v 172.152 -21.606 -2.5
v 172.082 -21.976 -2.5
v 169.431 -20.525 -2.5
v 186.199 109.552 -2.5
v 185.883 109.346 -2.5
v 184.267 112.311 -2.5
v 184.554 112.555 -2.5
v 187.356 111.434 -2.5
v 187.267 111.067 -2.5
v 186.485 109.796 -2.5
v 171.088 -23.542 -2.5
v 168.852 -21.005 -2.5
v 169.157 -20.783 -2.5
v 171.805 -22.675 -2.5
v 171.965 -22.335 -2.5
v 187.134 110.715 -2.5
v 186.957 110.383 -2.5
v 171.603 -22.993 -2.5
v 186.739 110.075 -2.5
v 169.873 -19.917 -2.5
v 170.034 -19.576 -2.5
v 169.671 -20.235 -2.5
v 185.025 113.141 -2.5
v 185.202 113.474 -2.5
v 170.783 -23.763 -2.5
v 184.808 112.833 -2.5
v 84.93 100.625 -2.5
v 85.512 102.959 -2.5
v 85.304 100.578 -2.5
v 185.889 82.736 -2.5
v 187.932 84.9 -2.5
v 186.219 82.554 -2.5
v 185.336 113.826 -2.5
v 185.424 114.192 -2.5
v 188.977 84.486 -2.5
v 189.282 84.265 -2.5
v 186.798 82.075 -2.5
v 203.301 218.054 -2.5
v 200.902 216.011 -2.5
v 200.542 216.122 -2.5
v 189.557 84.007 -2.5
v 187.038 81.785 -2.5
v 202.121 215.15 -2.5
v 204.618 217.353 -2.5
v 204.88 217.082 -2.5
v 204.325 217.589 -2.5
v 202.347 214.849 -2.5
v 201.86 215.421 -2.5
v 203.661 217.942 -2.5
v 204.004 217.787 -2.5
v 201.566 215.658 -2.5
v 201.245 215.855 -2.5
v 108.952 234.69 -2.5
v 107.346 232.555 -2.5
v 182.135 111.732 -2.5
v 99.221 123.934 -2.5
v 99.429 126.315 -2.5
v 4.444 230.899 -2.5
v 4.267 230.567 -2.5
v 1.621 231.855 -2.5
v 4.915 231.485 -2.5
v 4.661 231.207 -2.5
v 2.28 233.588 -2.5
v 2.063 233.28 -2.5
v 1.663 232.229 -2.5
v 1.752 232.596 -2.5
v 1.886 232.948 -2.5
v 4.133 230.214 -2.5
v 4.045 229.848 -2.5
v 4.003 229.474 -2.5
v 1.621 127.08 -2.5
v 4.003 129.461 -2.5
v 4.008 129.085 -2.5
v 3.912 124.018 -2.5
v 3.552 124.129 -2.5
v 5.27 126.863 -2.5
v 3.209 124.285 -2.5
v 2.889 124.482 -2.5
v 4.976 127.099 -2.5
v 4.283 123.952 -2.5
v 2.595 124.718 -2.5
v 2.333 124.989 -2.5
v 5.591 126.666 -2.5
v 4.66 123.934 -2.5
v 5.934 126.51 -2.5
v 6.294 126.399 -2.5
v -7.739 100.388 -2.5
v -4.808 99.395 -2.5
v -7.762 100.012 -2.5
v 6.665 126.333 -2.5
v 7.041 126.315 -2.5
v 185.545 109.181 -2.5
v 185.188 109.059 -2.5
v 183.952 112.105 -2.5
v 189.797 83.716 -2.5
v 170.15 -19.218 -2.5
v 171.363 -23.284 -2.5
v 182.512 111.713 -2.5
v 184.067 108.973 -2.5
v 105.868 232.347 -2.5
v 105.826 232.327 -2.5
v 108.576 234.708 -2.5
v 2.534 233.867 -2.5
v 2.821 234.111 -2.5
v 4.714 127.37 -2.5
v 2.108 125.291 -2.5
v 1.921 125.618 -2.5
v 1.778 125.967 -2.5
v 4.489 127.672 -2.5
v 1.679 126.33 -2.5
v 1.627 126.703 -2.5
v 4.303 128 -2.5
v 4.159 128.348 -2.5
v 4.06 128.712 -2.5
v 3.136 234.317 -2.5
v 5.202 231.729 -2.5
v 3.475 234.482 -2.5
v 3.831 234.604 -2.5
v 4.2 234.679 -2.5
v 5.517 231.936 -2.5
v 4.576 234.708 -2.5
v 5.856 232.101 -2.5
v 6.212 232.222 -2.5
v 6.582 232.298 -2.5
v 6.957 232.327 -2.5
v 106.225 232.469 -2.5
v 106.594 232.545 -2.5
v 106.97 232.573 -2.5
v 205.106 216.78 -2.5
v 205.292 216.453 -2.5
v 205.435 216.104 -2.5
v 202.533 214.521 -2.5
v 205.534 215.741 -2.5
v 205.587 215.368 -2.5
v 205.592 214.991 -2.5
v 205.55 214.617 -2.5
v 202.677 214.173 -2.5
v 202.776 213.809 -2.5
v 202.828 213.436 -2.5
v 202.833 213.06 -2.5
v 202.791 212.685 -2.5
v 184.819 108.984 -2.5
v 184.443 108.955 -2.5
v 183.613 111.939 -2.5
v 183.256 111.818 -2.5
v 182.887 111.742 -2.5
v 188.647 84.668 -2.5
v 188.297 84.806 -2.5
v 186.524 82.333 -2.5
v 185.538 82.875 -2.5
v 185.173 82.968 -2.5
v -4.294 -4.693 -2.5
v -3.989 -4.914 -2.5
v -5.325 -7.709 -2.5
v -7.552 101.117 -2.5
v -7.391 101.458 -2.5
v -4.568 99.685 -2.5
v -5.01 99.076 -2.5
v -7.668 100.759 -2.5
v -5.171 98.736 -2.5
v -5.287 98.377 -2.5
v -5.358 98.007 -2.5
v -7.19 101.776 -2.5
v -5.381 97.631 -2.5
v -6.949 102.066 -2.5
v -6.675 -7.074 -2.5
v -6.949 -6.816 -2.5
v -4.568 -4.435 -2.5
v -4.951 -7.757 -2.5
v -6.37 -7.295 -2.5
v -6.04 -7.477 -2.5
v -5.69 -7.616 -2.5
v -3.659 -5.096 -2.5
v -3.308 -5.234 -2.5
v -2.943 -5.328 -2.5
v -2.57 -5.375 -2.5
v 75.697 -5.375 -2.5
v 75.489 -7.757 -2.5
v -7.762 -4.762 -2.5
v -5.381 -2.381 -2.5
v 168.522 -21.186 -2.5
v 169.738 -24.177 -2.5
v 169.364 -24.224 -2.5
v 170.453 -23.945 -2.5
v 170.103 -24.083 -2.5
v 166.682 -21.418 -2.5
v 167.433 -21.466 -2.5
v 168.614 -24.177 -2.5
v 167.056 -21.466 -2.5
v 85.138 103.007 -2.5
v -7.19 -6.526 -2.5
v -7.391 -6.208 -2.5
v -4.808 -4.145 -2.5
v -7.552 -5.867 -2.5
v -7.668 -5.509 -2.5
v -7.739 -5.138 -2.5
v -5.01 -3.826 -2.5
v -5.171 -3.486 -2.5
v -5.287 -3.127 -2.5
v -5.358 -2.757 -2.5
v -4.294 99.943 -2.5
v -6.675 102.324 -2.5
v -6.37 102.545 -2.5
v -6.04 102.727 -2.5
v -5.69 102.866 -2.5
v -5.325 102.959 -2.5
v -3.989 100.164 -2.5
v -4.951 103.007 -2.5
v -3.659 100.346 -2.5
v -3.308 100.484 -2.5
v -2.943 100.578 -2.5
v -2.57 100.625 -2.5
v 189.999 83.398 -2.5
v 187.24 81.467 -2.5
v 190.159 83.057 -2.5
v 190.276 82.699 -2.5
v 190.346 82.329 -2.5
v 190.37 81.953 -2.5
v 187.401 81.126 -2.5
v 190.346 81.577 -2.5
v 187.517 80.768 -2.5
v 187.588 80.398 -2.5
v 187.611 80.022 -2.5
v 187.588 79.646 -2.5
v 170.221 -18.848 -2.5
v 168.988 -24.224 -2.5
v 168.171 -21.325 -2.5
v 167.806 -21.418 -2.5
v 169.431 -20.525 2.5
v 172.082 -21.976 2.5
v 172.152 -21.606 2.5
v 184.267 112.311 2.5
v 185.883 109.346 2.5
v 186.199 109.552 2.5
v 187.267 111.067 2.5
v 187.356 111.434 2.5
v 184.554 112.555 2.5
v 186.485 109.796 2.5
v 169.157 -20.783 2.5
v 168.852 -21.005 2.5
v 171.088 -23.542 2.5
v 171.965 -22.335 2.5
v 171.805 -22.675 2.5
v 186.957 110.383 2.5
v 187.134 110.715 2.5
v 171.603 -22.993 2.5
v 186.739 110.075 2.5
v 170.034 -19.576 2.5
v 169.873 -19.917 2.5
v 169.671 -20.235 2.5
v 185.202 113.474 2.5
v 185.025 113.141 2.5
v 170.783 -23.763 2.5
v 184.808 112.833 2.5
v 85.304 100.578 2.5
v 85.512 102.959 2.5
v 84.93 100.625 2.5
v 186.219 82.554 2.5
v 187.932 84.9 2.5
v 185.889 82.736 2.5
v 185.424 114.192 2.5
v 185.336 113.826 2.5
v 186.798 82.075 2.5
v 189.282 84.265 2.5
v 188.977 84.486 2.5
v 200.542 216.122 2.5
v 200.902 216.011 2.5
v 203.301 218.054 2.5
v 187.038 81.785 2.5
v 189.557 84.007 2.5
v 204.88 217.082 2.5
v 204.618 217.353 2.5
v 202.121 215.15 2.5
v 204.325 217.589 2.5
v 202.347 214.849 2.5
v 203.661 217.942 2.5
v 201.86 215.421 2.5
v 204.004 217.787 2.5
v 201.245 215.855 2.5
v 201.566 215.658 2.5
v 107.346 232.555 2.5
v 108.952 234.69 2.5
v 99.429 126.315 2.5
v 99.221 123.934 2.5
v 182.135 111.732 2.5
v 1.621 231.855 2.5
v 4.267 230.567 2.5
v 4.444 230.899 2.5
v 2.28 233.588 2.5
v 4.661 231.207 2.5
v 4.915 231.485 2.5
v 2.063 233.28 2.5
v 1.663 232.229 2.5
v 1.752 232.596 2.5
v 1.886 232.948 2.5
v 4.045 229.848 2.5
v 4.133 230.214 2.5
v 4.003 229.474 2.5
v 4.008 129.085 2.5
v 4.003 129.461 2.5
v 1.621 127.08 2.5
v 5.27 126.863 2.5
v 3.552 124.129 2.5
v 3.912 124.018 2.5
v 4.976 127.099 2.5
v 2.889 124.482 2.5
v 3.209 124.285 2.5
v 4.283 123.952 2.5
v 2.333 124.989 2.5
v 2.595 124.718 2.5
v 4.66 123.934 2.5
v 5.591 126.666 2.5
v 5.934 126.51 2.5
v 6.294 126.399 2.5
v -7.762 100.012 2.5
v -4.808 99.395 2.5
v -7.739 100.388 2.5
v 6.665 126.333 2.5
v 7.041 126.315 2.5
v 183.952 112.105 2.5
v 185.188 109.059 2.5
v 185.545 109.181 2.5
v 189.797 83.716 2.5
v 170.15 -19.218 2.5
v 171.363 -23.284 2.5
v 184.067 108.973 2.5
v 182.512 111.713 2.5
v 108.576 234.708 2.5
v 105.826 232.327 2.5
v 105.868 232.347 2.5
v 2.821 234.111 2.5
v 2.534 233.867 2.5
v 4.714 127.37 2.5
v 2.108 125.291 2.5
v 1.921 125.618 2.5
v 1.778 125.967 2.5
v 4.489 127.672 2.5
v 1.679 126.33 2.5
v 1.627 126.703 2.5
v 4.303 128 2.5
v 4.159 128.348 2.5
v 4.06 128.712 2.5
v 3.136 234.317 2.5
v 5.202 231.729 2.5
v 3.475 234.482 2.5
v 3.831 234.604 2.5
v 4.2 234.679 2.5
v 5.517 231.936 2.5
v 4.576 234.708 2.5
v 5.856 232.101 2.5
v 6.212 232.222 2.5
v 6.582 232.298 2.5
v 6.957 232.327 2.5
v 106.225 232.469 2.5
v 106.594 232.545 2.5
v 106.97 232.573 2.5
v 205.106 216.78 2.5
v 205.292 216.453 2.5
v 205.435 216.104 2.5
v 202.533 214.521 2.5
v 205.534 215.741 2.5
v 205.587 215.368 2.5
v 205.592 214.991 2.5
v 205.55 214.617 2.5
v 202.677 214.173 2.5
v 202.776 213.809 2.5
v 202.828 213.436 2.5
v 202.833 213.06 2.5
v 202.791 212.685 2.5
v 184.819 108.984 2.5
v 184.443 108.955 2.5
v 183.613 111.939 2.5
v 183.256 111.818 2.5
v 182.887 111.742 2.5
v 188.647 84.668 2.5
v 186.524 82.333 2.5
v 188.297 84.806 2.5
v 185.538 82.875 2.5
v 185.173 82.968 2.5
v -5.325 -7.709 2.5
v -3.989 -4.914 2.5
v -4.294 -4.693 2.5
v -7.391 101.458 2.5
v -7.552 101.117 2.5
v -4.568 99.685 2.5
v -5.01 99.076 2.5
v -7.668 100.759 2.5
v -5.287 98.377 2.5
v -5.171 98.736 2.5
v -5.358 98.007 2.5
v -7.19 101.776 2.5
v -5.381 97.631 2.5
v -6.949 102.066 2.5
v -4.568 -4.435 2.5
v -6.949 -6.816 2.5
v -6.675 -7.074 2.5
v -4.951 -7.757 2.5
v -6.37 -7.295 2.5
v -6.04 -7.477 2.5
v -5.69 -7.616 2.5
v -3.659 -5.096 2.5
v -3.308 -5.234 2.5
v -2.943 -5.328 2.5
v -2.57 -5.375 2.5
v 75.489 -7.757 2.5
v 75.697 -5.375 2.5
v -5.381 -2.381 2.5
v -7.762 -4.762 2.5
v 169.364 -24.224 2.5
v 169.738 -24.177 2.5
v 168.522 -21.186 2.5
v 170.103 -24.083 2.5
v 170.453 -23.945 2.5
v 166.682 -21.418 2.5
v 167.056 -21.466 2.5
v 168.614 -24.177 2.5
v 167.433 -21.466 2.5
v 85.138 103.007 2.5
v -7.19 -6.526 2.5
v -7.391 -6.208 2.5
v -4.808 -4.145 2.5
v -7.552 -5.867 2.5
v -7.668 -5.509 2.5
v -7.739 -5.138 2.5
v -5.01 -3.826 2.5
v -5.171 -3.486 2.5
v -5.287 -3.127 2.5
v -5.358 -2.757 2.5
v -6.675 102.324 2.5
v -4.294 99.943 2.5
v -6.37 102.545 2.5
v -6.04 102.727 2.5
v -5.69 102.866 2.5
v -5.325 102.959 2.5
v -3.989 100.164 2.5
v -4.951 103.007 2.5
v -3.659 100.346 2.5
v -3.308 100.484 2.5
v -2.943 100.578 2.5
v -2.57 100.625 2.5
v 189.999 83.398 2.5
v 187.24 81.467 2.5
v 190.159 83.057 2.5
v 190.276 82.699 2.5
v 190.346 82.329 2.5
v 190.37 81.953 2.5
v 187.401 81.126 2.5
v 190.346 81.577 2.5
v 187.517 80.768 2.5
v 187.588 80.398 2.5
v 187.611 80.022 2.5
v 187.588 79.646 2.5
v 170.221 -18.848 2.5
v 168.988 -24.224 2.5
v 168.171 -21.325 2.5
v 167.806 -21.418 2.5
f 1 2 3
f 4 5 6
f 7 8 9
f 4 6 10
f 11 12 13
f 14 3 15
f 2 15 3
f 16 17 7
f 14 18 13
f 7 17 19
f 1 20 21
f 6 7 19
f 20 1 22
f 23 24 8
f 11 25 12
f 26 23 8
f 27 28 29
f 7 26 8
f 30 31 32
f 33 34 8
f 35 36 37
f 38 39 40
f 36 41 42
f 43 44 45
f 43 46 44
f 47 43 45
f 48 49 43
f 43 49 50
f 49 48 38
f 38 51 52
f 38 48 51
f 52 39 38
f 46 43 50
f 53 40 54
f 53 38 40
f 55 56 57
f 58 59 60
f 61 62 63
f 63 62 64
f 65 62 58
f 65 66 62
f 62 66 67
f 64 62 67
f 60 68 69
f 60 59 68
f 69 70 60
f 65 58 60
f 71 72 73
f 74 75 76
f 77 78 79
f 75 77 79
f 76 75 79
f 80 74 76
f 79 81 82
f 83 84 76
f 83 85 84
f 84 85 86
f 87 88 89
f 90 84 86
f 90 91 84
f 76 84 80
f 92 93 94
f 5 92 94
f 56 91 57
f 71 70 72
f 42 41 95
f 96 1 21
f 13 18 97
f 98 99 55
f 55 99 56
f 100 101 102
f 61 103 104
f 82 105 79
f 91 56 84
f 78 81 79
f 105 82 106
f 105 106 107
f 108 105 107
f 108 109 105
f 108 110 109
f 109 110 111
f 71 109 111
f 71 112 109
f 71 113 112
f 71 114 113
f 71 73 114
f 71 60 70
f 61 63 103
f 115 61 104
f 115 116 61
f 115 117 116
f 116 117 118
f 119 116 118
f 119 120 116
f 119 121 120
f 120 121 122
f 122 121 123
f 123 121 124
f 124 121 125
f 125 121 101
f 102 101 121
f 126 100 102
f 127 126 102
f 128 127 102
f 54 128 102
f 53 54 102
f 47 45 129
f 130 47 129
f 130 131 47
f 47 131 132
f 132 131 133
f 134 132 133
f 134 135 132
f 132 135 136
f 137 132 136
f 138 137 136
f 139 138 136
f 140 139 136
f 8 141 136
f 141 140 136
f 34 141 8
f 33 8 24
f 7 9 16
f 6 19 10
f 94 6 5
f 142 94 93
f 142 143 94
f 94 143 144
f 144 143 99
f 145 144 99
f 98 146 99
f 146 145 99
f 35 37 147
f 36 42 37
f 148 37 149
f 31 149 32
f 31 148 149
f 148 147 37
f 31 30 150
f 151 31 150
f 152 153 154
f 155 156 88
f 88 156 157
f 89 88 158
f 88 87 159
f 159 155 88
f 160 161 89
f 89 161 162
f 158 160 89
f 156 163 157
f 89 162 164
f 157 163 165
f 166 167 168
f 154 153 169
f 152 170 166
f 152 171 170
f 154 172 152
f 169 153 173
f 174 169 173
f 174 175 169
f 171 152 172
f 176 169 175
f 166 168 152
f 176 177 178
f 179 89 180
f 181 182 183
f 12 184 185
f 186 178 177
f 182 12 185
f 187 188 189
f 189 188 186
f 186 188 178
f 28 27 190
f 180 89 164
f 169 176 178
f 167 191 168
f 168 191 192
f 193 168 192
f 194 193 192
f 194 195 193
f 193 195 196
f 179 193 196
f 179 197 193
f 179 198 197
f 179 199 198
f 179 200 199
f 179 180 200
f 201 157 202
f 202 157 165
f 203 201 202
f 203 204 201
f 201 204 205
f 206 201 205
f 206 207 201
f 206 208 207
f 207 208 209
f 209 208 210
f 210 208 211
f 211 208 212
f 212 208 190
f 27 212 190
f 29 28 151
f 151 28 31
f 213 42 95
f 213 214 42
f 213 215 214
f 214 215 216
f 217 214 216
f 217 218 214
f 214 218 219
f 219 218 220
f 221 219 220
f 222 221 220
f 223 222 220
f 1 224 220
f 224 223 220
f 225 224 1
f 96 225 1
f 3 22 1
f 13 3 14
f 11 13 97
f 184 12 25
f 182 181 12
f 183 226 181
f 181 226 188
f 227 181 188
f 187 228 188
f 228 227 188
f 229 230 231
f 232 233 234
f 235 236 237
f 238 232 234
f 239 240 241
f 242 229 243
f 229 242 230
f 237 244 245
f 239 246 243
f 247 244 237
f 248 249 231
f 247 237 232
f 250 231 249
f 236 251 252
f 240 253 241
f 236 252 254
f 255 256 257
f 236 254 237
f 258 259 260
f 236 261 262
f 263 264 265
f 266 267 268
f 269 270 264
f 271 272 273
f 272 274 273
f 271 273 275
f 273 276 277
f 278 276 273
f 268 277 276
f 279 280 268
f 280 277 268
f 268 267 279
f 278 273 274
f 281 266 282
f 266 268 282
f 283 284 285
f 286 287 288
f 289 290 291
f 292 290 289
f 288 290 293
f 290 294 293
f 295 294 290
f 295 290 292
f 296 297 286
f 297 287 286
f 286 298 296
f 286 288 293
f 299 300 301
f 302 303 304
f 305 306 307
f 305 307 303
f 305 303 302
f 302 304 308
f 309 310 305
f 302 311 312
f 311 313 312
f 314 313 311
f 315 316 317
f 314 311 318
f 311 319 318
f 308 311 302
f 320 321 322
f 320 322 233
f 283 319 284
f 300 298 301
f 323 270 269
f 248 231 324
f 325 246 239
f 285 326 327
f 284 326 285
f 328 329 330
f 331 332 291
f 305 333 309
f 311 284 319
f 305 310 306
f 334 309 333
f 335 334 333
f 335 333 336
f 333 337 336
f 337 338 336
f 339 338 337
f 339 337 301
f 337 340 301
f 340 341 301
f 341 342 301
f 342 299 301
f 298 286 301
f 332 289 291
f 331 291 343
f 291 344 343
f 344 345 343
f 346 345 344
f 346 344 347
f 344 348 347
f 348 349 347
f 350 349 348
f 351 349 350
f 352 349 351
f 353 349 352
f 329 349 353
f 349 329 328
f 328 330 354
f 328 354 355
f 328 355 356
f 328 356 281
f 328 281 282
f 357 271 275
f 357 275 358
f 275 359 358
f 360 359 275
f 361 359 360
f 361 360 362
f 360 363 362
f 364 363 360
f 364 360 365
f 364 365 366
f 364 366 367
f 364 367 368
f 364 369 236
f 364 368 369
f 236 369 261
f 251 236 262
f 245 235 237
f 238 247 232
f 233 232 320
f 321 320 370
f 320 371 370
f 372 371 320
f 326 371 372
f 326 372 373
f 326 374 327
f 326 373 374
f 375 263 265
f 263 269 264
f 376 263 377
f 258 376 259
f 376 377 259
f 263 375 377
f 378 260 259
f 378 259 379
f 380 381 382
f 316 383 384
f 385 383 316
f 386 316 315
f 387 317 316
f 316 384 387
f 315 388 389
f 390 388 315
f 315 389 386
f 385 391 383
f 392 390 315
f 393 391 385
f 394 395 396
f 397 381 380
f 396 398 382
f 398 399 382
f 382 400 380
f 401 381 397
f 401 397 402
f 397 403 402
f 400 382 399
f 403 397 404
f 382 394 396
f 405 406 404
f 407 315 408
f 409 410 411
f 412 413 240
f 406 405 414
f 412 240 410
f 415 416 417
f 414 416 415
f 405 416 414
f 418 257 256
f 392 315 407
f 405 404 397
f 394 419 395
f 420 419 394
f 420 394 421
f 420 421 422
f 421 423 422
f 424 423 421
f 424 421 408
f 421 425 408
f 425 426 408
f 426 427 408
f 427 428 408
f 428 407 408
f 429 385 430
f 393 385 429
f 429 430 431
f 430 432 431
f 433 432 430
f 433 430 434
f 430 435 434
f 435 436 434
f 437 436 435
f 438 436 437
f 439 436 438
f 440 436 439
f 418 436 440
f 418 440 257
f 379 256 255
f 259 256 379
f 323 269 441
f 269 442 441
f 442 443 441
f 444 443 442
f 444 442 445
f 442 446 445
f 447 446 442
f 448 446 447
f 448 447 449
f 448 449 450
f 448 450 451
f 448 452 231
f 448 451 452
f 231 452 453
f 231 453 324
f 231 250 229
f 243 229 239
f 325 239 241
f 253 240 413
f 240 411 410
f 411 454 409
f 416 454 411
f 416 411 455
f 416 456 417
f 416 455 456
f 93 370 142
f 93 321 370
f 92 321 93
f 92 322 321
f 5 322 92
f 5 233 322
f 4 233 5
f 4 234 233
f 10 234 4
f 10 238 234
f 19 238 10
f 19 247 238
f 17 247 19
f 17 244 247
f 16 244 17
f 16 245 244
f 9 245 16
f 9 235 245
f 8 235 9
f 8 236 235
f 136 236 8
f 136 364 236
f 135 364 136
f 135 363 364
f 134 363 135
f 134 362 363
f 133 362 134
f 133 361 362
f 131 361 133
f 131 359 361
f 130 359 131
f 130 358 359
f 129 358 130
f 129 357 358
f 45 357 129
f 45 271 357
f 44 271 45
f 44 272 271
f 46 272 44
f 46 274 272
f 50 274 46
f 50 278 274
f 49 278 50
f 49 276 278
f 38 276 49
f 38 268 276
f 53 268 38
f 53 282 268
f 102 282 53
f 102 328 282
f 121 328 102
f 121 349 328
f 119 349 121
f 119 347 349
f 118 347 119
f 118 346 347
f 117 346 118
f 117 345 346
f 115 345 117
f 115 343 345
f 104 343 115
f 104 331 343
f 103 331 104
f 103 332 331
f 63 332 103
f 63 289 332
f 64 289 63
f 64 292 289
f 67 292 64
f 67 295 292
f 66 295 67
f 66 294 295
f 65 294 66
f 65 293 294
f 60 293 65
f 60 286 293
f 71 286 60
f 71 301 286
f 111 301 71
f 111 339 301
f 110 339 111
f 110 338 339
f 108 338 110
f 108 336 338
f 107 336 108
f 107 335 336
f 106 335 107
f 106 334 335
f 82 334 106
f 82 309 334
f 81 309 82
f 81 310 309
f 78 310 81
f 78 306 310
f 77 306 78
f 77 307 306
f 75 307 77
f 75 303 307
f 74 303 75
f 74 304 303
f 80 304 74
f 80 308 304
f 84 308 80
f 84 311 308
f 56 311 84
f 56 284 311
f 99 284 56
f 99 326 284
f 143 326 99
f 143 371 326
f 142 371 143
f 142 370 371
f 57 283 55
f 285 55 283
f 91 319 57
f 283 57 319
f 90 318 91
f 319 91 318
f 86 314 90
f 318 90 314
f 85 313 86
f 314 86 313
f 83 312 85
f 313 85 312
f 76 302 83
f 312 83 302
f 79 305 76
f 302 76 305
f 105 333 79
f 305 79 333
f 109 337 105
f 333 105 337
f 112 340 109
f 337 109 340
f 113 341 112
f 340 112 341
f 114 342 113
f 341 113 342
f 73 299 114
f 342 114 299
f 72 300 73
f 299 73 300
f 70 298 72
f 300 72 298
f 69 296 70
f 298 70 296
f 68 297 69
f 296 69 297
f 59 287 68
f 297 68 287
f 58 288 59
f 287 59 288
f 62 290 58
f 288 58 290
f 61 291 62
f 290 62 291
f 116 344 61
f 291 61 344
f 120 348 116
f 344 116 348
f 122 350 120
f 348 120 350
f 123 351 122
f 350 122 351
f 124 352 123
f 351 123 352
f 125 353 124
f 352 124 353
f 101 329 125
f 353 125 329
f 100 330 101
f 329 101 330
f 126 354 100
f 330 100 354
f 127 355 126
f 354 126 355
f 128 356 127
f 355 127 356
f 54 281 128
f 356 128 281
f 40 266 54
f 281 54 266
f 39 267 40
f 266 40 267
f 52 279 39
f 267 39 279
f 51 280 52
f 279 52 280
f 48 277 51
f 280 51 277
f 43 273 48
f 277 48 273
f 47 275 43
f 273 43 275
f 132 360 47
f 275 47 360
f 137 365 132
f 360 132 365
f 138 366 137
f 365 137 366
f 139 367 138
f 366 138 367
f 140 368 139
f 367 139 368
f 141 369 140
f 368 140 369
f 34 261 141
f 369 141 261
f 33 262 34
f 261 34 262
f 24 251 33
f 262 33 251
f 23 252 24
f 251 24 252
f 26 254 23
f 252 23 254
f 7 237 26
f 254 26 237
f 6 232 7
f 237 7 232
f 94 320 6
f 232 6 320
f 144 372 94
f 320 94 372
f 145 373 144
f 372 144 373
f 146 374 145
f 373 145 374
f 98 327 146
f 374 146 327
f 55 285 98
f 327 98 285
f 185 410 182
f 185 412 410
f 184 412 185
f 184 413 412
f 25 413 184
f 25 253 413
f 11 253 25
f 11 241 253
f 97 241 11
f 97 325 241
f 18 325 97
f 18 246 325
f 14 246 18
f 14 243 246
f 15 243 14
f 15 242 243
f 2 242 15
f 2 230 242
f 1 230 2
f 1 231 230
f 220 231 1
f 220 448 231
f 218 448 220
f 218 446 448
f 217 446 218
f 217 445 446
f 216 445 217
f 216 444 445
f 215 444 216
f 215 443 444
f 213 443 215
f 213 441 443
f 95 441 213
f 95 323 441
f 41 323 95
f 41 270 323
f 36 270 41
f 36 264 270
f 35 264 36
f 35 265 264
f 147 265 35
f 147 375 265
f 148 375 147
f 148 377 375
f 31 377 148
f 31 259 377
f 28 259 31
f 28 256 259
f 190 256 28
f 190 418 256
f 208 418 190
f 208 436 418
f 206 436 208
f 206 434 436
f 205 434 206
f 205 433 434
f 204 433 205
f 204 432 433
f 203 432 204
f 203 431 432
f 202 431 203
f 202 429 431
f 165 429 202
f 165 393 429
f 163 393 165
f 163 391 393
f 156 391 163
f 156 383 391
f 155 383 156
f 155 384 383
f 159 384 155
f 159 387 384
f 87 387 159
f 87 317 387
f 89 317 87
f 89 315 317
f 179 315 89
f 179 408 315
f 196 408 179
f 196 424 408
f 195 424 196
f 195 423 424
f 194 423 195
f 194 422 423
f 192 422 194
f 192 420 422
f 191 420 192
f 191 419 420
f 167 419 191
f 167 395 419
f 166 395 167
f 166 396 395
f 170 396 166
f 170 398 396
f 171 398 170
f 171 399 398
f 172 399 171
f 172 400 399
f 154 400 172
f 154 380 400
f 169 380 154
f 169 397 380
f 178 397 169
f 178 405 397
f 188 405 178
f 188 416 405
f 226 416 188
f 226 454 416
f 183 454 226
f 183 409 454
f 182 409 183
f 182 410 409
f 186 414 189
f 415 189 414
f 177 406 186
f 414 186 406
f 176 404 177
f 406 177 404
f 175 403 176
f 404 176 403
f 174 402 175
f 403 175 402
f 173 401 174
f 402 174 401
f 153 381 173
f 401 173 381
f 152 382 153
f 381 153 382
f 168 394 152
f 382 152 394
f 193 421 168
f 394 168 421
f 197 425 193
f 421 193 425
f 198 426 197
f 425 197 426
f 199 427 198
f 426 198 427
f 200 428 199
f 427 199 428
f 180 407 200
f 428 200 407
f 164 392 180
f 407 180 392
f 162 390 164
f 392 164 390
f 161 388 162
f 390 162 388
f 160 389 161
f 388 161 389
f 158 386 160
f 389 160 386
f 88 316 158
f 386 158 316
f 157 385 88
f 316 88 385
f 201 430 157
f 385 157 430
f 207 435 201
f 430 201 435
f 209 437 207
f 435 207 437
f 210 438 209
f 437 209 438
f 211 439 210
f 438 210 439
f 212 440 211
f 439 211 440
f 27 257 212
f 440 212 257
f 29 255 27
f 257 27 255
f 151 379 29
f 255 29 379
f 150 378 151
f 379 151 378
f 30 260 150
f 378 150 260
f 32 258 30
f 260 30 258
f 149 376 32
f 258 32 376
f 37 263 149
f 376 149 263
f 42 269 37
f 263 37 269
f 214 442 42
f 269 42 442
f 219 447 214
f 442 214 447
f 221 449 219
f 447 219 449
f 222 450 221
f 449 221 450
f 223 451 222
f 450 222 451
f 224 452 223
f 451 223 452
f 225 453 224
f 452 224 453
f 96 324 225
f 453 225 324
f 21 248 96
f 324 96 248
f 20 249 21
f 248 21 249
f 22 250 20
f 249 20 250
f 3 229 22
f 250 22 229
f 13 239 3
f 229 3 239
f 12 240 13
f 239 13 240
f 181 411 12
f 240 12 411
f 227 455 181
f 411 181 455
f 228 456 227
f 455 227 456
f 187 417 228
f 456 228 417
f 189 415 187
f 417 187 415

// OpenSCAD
// file: base.scad
/* 1u = 1mm */
$fn = 50;
$fa = 5;
$fs = 0.1;

// CONSTANTS
PLATE_PLACEHOLDER_SIZE = 19.05;
SWITCH_SIZE = 14; // Change to 18 to see keycap clearance
ROTATION = 10; // degrees
RIGHT_PLATE_OFFSET = 7;

PLATE_HEIGHT = 5;
OUTER_WIDTH = 3;
INNER_WIDTH = 1.5;

// https://cdn.matt3o.com/uploads/2018/05/keycap-size-diagram.png
module plate_placeholder(width=1) {
    translate([width*PLATE_PLACEHOLDER_SIZE/2, PLATE_PLACEHOLDER_SIZE/2])
        square([width*PLATE_PLACEHOLDER_SIZE, PLATE_PLACEHOLDER_SIZE], center=true); // keycap placeholder space
}

module switch(width=1) {
    translate([width*PLATE_PLACEHOLDER_SIZE/2, PLATE_PLACEHOLDER_SIZE/2])
        square([SWITCH_SIZE, SWITCH_SIZE], center=true);
}

function sum(row, i = 0, sum_so_far = 0) = len(row) == i ? sum_so_far : sum(row, i+1, sum_so_far+row[i]);

function accumulate_lengths(row, i = 0, sum=0) = len(row) - 1 == i ? [sum] :
    concat(sum, accumulate_lengths(row, i+1, sum+row[i]));

module cluster(keys, type) { // 2d array
    for (row_index = [0:len(keys)-1]) {
        row_lengths = accumulate_lengths(keys[row_index]);

        for (col_index = [1:len(keys[row_index])-1]) {
            x_offset = row_lengths[col_index];
            y_offset = len(keys)-1-row_index;
            size = keys[row_index][col_index];

            if (size >= 1) {
                if (type == "B") {
                    translate([x_offset * PLATE_PLACEHOLDER_SIZE, y_offset * PLATE_PLACEHOLDER_SIZE, 0])
                        switch(size);
                } else if (type == "A") {
                    translate([x_offset * PLATE_PLACEHOLDER_SIZE, y_offset * PLATE_PLACEHOLDER_SIZE, 0])
                        plate_placeholder(size);
                }
            }
        }
    }
}

module ky_040(type) {
    if (type == "B") {
        circle(6.4/2);
    } else if (type == "A") {
        circle(16/2);
    }
}

// LEFT CLUSTER
//        PAD  ESC PAD   MODS KEY
left_cluster = [[0.5,  1, 0.25, 1,    1],
                [0.25, 1, 0.25, 1.5,  1],
                [0,    1, 0.25, 1.75, 1],
                [1,             2.25, 1],
                [1,          1.25]];

left_center_cluster = [[0.5,  1,   1, 1, 1],
                       [0,    1,   1, 1, 1],
                       [0.25, 1,   1, 1, 1],
                       [0.75, 1,   1, 1, 1],
                       [0.50, 1.5, 2, 1.25]];

right_center_cluster = [[0.75, 1,   1, 1, 1],
                        [0.25, 1,   1, 1, 1],
                        [0.5,  1,   1, 1, 1],
                        [0,    1,   1, 1, 1],
                        [0,    2.75, 1.5]];

right_cluster = [[0.25,   1, 1, 1, 1],
                 [0,   1, 1, 1, 1.5],
                 [0.5,    1, 1, 2.25],
                 [0.25,   1, 1, 1.75, 1],
                 [3, 1.5]];

LEFT_CENTER_OFFSET = left_center_cluster[len(left_center_cluster) - 1][0];

WIDTH = 9;
HEIGHT = 5;
PADDING = 0.25;

module left(type, padding=PADDING) {
    LEFT_CENTER_LENGTH = sum(left_center_cluster[len(left_center_cluster) - 1]);

    module base() {
        difference() {
            union() {
                // left
                translate([-padding*PLATE_PLACEHOLDER_SIZE, -padding*PLATE_PLACEHOLDER_SIZE, 0])
                    square([(4.5+LEFT_CENTER_OFFSET+padding)*PLATE_PLACEHOLDER_SIZE, (HEIGHT+2*padding)*PLATE_PLACEHOLDER_SIZE]);

                // middle left
                translate([4*PLATE_PLACEHOLDER_SIZE, 0, 0])
                    rotate(a=[0, 0, -ROTATION])
                    translate([-LEFT_CENTER_OFFSET*PLATE_PLACEHOLDER_SIZE, -padding*PLATE_PLACEHOLDER_SIZE, 0])
                    square([(LEFT_CENTER_LENGTH+padding)*PLATE_PLACEHOLDER_SIZE, (HEIGHT+2*padding)*PLATE_PLACEHOLDER_SIZE]);
            };

            union() {
                // Scuffed: Take out top triangle
                translate([0, (HEIGHT+padding)*PLATE_PLACEHOLDER_SIZE, 0])
                    square([(LEFT_CENTER_LENGTH+1)*PLATE_PLACEHOLDER_SIZE, PLATE_PLACEHOLDER_SIZE]);

                // Scuffed: Take out center left triangle
                translate([4*PLATE_PLACEHOLDER_SIZE, 0, 0])
                    rotate(a=[0, 0, -ROTATION])
                    translate([-LEFT_CENTER_OFFSET*PLATE_PLACEHOLDER_SIZE, (HEIGHT+padding)*PLATE_PLACEHOLDER_SIZE, 0])
                    square([(LEFT_CENTER_LENGTH+1)*PLATE_PLACEHOLDER_SIZE, PLATE_PLACEHOLDER_SIZE]);
            };
        };
    };

    module cutouts() {
        union() {
            // left
            cluster(left_cluster, type);

            // center left
            translate([4*PLATE_PLACEHOLDER_SIZE, 0, 0])       // Move object to appropriate position
                rotate(a=[0, 0, -ROTATION])                 // Apply rotation, centered on bottom left key
                translate([-LEFT_CENTER_OFFSET*PLATE_PLACEHOLDER_SIZE, 0, 0]) // Translate bottom left cluster corner to 0,0
                cluster(left_center_cluster, type);

            // #2
            if (type == "B") {
                translate([3.75*PLATE_PLACEHOLDER_SIZE, 4.07*PLATE_PLACEHOLDER_SIZE, 0])
                    switch(1);
            } else if (type == "A") {
                translate([3.75*PLATE_PLACEHOLDER_SIZE, 4.07*PLATE_PLACEHOLDER_SIZE, 0])
                    plate_placeholder(1);
            }
        };
    };

    difference() {
        minkowski() {
            base();
            circle(OUTER_WIDTH);
        };
        cutouts();
    };
}

module right(type, padding=PADDING) {
    RIGHT_CENTER_MAX_LENGTH = sum(right_center_cluster[0]);
    RIGHT_LENGTH = sum(right_cluster[len(right_cluster) - 2]);

    module base() {
        difference(){
            union() {
                // center right
                translate([0.5 * PLATE_PLACEHOLDER_SIZE, 0, 0])
                    rotate(a=[0, 0, ROTATION])
                    translate([-(RIGHT_CENTER_MAX_LENGTH + padding)*PLATE_PLACEHOLDER_SIZE, -padding*PLATE_PLACEHOLDER_SIZE, 0])
                    square([(RIGHT_CENTER_MAX_LENGTH + 4*padding)*PLATE_PLACEHOLDER_SIZE, (HEIGHT+2*padding)*PLATE_PLACEHOLDER_SIZE]);

                // right
                translate([-(padding+0.2)*PLATE_PLACEHOLDER_SIZE, -padding*PLATE_PLACEHOLDER_SIZE, 0])
                    square([(RIGHT_LENGTH+2*padding)*PLATE_PLACEHOLDER_SIZE, (HEIGHT+2*padding)*PLATE_PLACEHOLDER_SIZE]);
            }

            union() {
                // Scuffed: Take out center right triangle
                translate([0.5 * PLATE_PLACEHOLDER_SIZE, 0, 0])
                    rotate(a=[0, 0, ROTATION])
                    translate([-(RIGHT_CENTER_MAX_LENGTH + padding)*PLATE_PLACEHOLDER_SIZE, (HEIGHT+padding)*PLATE_PLACEHOLDER_SIZE, 0])
                    square([(RIGHT_CENTER_MAX_LENGTH + 4*padding)*PLATE_PLACEHOLDER_SIZE, PLATE_PLACEHOLDER_SIZE]);

                // Scuffed: Take out top triangle
                translate([-(padding+0.2)*PLATE_PLACEHOLDER_SIZE, (HEIGHT+padding)*PLATE_PLACEHOLDER_SIZE, 0])
                    square([(RIGHT_LENGTH+2*padding)*PLATE_PLACEHOLDER_SIZE, PLATE_PLACEHOLDER_SIZE]);
            }
        }
    };

    module cutouts() {
        // center right
        translate([0.5 * PLATE_PLACEHOLDER_SIZE, 0, 0])
            rotate(a=[0, 0, ROTATION])
            translate([-(RIGHT_CENTER_MAX_LENGTH) * PLATE_PLACEHOLDER_SIZE, 0, 0]) // Translate bottom right cluster corner to 0,0
            cluster(right_center_cluster, type);

        // right
        translate([-0.2 * PLATE_PLACEHOLDER_SIZE, 0, 0])
            cluster(right_cluster, type);

        translate([(RIGHT_CENTER_MAX_LENGTH-0.12)*PLATE_PLACEHOLDER_SIZE, (5-0.25)*PLATE_PLACEHOLDER_SIZE,0])
            ky_040(type);
    };

    translate([RIGHT_CENTER_MAX_LENGTH * PLATE_PLACEHOLDER_SIZE, RIGHT_PLATE_OFFSET * PLATE_PLACEHOLDER_SIZE, 0])
        rotate(a=[0, 0, -ROTATION])
        difference() {
            minkowski() {
                base();
                circle(OUTER_WIDTH);
            };
            cutouts();
        };
}
// main file
include <base.scad>;

linear_extrude(height=PLATE_HEIGHT, center=true)
    union() {
        difference() {
            left("C", PADDING);
            left("C", 0.5*PADDING);
        };

        difference() {
            right("C", PADDING);
            right("C", 0.5*PADDING);
        };
    };
